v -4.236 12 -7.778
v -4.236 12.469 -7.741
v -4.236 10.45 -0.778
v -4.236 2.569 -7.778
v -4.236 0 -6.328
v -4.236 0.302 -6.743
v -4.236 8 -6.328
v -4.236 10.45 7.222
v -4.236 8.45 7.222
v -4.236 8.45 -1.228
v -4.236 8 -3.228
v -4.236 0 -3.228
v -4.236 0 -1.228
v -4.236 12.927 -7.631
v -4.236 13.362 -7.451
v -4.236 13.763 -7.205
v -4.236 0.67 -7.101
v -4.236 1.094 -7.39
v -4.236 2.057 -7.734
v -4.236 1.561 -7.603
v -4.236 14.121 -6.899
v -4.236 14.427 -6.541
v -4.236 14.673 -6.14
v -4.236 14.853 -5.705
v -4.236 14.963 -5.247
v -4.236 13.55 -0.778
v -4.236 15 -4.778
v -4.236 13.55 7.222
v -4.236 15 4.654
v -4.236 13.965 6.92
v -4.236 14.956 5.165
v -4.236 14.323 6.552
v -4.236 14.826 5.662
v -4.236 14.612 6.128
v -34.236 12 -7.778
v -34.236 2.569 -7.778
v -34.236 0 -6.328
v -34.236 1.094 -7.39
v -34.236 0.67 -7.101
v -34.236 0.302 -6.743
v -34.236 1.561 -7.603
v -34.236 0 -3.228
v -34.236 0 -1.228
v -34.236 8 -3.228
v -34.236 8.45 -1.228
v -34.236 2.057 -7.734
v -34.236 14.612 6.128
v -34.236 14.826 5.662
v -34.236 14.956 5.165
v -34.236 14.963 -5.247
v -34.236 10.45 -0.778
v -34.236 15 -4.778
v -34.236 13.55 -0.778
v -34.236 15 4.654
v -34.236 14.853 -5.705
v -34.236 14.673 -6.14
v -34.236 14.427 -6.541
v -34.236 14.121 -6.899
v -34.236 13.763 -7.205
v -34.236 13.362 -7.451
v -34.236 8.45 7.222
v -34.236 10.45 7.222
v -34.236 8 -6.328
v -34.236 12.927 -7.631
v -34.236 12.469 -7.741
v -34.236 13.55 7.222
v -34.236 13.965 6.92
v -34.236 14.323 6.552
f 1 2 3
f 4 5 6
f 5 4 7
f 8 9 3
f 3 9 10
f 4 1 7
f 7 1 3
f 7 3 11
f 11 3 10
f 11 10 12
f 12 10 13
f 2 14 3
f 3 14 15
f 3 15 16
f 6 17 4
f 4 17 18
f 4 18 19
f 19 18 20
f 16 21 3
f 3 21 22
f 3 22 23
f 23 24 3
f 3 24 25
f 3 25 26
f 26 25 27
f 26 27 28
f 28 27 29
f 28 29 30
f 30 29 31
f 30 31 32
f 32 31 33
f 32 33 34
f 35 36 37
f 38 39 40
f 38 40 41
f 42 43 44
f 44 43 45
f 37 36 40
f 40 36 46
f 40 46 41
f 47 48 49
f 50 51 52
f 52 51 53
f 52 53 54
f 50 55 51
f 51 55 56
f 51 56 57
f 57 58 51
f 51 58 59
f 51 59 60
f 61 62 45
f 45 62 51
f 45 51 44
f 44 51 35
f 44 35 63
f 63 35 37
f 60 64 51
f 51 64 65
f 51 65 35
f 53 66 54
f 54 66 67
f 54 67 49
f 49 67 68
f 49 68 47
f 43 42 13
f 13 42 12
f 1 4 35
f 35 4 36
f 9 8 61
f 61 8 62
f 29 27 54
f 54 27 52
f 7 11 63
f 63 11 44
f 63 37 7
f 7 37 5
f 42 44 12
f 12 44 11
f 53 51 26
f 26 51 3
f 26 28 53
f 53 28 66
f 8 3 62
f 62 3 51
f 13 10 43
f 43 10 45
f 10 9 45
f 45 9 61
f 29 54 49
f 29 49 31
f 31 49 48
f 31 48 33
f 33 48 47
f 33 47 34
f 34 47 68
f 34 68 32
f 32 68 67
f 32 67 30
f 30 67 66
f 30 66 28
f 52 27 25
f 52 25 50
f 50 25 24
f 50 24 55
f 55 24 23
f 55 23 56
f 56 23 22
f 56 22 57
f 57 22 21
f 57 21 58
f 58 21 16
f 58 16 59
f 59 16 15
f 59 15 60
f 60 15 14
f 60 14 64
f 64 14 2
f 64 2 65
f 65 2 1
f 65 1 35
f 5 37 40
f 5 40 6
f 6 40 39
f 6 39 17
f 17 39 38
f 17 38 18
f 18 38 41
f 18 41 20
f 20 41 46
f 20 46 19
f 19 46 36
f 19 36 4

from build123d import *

# Parameters (mm, degrees)
SKETCH1_W               = 30
SKETCH1_H               = 15
BOSS_EXTRUDE1_DEPTH     = 15
CUT_EXTRUDE1_DEPTH      = 1.55
CUT_EXTRUDE1_DEPTH_BACK = 1.55
SKETCH2_W               = 30
SKETCH2_H               = 8
CUT_EXTRUDE2_DEPTH      = 1.55
CUT_EXTRUDE2_DEPTH_BACK = 1.55
SKETCH4_W               = 30
SKETCH4_H               = 8
SKETCH5_W               = 8.45
SKETCH5_H               = 8.45
CUT_EXTRUDE3_DEPTH      = 35.431000961
FILLET1_R               = 3


with BuildPart() as part:
    # Sketch1 → Boss-Extrude1 (new body)
    with BuildSketch(Plane(origin=(0, 0, 0), x_dir=(1, 0, 0), z_dir=(0, 1, 0))):
        with Locations((-19.236111111, 0.277777778)):
            Rectangle(SKETCH1_W, SKETCH1_H)
    extrude(amount=BOSS_EXTRUDE1_DEPTH)

    # Sketch2 → Cut-Extrude1 (cut, two sides: drawn at the far end of the back side and taken through both)
    with BuildSketch(Plane(origin=(0, 0, -4.777777778), x_dir=(-1, 0, 0), z_dir=(0, 0, -1)).offset(-CUT_EXTRUDE1_DEPTH_BACK)):
        with Locations((19.236111111, 4)):
            Rectangle(SKETCH2_W, SKETCH2_H)
    extrude(amount=CUT_EXTRUDE1_DEPTH + CUT_EXTRUDE1_DEPTH_BACK, mode=Mode.SUBTRACT)

    # Sketch4 → Cut-Extrude2 (cut, two sides: drawn at the far end of the back side and taken through both)
    with BuildSketch(Plane(origin=(0, 12, 0), x_dir=(1, 0, 0), z_dir=(0, 1, 0)).offset(-CUT_EXTRUDE2_DEPTH_BACK)):
        with Locations((-19.236111111, -3.222222222)):
            Rectangle(SKETCH4_W, SKETCH4_H)
    extrude(amount=CUT_EXTRUDE2_DEPTH + CUT_EXTRUDE2_DEPTH_BACK, mode=Mode.SUBTRACT)

    # Sketch5 → Cut-Extrude3 (cut, through all)
    with BuildSketch(Plane.ZY.offset(34.236111111)):
        with Locations((2.997222222, 4.225)):
            Rectangle(SKETCH5_W, SKETCH5_H)
    extrude(amount=-CUT_EXTRUDE3_DEPTH, mode=Mode.SUBTRACT)

    # Fillet1
    # the kernel refuses this fillet: 3 mm, written as the material it takes off along each edge
    with BuildSketch(Plane(origin=(2.185288658, 15, 7.222222222), x_dir=(0, 0, -1), z_dir=(-1, 0, 0)), Plane(origin=(-40.657510881, 0, -7.777777778), x_dir=(0, 1, 0), z_dir=(1, 0, 0))) as fillet1_piece_1:
        with BuildLine():
            CenterArc((2.568559908, 3), FILLET1_R, 211.108922511, 58.891077489)
            Line((0, 1.45), (-0.051371198, 1.419))
            ThreePointArc((-0.051371198, 1.419), (-0.06, 0.725), (-0.06, 0))
            Line((-0.06, 0), (0, -0.06))
            Line((0, -0.06), (2.568559908, -0.06))
            Line((2.568559908, -0.06), (2.568559908, 0))
        make_face()
    extrude(amount=42.842799539, mode=Mode.SUBTRACT)
    with BuildSketch(Plane(origin=(-41.736111111, 15, -7.777777778), x_dir=(0, -1, 0), z_dir=(1, 0, 0))) as fillet1_piece_2:
        with BuildLine():
            CenterArc((FILLET1_R, -FILLET1_R), FILLET1_R, 90, 90)
            Line((0, -FILLET1_R), (-FILLET1_R * 0.02, -FILLET1_R))
            Line((-FILLET1_R * 0.02, -FILLET1_R), (-FILLET1_R * 0.02, FILLET1_R * 0.02))
            Line((-FILLET1_R * 0.02, FILLET1_R * 0.02), (FILLET1_R, FILLET1_R * 0.02))
            Line((FILLET1_R, FILLET1_R * 0.02), (FILLET1_R, 0))
        make_face()
    extrude(amount=45, mode=Mode.SUBTRACT)


solid = part.part
